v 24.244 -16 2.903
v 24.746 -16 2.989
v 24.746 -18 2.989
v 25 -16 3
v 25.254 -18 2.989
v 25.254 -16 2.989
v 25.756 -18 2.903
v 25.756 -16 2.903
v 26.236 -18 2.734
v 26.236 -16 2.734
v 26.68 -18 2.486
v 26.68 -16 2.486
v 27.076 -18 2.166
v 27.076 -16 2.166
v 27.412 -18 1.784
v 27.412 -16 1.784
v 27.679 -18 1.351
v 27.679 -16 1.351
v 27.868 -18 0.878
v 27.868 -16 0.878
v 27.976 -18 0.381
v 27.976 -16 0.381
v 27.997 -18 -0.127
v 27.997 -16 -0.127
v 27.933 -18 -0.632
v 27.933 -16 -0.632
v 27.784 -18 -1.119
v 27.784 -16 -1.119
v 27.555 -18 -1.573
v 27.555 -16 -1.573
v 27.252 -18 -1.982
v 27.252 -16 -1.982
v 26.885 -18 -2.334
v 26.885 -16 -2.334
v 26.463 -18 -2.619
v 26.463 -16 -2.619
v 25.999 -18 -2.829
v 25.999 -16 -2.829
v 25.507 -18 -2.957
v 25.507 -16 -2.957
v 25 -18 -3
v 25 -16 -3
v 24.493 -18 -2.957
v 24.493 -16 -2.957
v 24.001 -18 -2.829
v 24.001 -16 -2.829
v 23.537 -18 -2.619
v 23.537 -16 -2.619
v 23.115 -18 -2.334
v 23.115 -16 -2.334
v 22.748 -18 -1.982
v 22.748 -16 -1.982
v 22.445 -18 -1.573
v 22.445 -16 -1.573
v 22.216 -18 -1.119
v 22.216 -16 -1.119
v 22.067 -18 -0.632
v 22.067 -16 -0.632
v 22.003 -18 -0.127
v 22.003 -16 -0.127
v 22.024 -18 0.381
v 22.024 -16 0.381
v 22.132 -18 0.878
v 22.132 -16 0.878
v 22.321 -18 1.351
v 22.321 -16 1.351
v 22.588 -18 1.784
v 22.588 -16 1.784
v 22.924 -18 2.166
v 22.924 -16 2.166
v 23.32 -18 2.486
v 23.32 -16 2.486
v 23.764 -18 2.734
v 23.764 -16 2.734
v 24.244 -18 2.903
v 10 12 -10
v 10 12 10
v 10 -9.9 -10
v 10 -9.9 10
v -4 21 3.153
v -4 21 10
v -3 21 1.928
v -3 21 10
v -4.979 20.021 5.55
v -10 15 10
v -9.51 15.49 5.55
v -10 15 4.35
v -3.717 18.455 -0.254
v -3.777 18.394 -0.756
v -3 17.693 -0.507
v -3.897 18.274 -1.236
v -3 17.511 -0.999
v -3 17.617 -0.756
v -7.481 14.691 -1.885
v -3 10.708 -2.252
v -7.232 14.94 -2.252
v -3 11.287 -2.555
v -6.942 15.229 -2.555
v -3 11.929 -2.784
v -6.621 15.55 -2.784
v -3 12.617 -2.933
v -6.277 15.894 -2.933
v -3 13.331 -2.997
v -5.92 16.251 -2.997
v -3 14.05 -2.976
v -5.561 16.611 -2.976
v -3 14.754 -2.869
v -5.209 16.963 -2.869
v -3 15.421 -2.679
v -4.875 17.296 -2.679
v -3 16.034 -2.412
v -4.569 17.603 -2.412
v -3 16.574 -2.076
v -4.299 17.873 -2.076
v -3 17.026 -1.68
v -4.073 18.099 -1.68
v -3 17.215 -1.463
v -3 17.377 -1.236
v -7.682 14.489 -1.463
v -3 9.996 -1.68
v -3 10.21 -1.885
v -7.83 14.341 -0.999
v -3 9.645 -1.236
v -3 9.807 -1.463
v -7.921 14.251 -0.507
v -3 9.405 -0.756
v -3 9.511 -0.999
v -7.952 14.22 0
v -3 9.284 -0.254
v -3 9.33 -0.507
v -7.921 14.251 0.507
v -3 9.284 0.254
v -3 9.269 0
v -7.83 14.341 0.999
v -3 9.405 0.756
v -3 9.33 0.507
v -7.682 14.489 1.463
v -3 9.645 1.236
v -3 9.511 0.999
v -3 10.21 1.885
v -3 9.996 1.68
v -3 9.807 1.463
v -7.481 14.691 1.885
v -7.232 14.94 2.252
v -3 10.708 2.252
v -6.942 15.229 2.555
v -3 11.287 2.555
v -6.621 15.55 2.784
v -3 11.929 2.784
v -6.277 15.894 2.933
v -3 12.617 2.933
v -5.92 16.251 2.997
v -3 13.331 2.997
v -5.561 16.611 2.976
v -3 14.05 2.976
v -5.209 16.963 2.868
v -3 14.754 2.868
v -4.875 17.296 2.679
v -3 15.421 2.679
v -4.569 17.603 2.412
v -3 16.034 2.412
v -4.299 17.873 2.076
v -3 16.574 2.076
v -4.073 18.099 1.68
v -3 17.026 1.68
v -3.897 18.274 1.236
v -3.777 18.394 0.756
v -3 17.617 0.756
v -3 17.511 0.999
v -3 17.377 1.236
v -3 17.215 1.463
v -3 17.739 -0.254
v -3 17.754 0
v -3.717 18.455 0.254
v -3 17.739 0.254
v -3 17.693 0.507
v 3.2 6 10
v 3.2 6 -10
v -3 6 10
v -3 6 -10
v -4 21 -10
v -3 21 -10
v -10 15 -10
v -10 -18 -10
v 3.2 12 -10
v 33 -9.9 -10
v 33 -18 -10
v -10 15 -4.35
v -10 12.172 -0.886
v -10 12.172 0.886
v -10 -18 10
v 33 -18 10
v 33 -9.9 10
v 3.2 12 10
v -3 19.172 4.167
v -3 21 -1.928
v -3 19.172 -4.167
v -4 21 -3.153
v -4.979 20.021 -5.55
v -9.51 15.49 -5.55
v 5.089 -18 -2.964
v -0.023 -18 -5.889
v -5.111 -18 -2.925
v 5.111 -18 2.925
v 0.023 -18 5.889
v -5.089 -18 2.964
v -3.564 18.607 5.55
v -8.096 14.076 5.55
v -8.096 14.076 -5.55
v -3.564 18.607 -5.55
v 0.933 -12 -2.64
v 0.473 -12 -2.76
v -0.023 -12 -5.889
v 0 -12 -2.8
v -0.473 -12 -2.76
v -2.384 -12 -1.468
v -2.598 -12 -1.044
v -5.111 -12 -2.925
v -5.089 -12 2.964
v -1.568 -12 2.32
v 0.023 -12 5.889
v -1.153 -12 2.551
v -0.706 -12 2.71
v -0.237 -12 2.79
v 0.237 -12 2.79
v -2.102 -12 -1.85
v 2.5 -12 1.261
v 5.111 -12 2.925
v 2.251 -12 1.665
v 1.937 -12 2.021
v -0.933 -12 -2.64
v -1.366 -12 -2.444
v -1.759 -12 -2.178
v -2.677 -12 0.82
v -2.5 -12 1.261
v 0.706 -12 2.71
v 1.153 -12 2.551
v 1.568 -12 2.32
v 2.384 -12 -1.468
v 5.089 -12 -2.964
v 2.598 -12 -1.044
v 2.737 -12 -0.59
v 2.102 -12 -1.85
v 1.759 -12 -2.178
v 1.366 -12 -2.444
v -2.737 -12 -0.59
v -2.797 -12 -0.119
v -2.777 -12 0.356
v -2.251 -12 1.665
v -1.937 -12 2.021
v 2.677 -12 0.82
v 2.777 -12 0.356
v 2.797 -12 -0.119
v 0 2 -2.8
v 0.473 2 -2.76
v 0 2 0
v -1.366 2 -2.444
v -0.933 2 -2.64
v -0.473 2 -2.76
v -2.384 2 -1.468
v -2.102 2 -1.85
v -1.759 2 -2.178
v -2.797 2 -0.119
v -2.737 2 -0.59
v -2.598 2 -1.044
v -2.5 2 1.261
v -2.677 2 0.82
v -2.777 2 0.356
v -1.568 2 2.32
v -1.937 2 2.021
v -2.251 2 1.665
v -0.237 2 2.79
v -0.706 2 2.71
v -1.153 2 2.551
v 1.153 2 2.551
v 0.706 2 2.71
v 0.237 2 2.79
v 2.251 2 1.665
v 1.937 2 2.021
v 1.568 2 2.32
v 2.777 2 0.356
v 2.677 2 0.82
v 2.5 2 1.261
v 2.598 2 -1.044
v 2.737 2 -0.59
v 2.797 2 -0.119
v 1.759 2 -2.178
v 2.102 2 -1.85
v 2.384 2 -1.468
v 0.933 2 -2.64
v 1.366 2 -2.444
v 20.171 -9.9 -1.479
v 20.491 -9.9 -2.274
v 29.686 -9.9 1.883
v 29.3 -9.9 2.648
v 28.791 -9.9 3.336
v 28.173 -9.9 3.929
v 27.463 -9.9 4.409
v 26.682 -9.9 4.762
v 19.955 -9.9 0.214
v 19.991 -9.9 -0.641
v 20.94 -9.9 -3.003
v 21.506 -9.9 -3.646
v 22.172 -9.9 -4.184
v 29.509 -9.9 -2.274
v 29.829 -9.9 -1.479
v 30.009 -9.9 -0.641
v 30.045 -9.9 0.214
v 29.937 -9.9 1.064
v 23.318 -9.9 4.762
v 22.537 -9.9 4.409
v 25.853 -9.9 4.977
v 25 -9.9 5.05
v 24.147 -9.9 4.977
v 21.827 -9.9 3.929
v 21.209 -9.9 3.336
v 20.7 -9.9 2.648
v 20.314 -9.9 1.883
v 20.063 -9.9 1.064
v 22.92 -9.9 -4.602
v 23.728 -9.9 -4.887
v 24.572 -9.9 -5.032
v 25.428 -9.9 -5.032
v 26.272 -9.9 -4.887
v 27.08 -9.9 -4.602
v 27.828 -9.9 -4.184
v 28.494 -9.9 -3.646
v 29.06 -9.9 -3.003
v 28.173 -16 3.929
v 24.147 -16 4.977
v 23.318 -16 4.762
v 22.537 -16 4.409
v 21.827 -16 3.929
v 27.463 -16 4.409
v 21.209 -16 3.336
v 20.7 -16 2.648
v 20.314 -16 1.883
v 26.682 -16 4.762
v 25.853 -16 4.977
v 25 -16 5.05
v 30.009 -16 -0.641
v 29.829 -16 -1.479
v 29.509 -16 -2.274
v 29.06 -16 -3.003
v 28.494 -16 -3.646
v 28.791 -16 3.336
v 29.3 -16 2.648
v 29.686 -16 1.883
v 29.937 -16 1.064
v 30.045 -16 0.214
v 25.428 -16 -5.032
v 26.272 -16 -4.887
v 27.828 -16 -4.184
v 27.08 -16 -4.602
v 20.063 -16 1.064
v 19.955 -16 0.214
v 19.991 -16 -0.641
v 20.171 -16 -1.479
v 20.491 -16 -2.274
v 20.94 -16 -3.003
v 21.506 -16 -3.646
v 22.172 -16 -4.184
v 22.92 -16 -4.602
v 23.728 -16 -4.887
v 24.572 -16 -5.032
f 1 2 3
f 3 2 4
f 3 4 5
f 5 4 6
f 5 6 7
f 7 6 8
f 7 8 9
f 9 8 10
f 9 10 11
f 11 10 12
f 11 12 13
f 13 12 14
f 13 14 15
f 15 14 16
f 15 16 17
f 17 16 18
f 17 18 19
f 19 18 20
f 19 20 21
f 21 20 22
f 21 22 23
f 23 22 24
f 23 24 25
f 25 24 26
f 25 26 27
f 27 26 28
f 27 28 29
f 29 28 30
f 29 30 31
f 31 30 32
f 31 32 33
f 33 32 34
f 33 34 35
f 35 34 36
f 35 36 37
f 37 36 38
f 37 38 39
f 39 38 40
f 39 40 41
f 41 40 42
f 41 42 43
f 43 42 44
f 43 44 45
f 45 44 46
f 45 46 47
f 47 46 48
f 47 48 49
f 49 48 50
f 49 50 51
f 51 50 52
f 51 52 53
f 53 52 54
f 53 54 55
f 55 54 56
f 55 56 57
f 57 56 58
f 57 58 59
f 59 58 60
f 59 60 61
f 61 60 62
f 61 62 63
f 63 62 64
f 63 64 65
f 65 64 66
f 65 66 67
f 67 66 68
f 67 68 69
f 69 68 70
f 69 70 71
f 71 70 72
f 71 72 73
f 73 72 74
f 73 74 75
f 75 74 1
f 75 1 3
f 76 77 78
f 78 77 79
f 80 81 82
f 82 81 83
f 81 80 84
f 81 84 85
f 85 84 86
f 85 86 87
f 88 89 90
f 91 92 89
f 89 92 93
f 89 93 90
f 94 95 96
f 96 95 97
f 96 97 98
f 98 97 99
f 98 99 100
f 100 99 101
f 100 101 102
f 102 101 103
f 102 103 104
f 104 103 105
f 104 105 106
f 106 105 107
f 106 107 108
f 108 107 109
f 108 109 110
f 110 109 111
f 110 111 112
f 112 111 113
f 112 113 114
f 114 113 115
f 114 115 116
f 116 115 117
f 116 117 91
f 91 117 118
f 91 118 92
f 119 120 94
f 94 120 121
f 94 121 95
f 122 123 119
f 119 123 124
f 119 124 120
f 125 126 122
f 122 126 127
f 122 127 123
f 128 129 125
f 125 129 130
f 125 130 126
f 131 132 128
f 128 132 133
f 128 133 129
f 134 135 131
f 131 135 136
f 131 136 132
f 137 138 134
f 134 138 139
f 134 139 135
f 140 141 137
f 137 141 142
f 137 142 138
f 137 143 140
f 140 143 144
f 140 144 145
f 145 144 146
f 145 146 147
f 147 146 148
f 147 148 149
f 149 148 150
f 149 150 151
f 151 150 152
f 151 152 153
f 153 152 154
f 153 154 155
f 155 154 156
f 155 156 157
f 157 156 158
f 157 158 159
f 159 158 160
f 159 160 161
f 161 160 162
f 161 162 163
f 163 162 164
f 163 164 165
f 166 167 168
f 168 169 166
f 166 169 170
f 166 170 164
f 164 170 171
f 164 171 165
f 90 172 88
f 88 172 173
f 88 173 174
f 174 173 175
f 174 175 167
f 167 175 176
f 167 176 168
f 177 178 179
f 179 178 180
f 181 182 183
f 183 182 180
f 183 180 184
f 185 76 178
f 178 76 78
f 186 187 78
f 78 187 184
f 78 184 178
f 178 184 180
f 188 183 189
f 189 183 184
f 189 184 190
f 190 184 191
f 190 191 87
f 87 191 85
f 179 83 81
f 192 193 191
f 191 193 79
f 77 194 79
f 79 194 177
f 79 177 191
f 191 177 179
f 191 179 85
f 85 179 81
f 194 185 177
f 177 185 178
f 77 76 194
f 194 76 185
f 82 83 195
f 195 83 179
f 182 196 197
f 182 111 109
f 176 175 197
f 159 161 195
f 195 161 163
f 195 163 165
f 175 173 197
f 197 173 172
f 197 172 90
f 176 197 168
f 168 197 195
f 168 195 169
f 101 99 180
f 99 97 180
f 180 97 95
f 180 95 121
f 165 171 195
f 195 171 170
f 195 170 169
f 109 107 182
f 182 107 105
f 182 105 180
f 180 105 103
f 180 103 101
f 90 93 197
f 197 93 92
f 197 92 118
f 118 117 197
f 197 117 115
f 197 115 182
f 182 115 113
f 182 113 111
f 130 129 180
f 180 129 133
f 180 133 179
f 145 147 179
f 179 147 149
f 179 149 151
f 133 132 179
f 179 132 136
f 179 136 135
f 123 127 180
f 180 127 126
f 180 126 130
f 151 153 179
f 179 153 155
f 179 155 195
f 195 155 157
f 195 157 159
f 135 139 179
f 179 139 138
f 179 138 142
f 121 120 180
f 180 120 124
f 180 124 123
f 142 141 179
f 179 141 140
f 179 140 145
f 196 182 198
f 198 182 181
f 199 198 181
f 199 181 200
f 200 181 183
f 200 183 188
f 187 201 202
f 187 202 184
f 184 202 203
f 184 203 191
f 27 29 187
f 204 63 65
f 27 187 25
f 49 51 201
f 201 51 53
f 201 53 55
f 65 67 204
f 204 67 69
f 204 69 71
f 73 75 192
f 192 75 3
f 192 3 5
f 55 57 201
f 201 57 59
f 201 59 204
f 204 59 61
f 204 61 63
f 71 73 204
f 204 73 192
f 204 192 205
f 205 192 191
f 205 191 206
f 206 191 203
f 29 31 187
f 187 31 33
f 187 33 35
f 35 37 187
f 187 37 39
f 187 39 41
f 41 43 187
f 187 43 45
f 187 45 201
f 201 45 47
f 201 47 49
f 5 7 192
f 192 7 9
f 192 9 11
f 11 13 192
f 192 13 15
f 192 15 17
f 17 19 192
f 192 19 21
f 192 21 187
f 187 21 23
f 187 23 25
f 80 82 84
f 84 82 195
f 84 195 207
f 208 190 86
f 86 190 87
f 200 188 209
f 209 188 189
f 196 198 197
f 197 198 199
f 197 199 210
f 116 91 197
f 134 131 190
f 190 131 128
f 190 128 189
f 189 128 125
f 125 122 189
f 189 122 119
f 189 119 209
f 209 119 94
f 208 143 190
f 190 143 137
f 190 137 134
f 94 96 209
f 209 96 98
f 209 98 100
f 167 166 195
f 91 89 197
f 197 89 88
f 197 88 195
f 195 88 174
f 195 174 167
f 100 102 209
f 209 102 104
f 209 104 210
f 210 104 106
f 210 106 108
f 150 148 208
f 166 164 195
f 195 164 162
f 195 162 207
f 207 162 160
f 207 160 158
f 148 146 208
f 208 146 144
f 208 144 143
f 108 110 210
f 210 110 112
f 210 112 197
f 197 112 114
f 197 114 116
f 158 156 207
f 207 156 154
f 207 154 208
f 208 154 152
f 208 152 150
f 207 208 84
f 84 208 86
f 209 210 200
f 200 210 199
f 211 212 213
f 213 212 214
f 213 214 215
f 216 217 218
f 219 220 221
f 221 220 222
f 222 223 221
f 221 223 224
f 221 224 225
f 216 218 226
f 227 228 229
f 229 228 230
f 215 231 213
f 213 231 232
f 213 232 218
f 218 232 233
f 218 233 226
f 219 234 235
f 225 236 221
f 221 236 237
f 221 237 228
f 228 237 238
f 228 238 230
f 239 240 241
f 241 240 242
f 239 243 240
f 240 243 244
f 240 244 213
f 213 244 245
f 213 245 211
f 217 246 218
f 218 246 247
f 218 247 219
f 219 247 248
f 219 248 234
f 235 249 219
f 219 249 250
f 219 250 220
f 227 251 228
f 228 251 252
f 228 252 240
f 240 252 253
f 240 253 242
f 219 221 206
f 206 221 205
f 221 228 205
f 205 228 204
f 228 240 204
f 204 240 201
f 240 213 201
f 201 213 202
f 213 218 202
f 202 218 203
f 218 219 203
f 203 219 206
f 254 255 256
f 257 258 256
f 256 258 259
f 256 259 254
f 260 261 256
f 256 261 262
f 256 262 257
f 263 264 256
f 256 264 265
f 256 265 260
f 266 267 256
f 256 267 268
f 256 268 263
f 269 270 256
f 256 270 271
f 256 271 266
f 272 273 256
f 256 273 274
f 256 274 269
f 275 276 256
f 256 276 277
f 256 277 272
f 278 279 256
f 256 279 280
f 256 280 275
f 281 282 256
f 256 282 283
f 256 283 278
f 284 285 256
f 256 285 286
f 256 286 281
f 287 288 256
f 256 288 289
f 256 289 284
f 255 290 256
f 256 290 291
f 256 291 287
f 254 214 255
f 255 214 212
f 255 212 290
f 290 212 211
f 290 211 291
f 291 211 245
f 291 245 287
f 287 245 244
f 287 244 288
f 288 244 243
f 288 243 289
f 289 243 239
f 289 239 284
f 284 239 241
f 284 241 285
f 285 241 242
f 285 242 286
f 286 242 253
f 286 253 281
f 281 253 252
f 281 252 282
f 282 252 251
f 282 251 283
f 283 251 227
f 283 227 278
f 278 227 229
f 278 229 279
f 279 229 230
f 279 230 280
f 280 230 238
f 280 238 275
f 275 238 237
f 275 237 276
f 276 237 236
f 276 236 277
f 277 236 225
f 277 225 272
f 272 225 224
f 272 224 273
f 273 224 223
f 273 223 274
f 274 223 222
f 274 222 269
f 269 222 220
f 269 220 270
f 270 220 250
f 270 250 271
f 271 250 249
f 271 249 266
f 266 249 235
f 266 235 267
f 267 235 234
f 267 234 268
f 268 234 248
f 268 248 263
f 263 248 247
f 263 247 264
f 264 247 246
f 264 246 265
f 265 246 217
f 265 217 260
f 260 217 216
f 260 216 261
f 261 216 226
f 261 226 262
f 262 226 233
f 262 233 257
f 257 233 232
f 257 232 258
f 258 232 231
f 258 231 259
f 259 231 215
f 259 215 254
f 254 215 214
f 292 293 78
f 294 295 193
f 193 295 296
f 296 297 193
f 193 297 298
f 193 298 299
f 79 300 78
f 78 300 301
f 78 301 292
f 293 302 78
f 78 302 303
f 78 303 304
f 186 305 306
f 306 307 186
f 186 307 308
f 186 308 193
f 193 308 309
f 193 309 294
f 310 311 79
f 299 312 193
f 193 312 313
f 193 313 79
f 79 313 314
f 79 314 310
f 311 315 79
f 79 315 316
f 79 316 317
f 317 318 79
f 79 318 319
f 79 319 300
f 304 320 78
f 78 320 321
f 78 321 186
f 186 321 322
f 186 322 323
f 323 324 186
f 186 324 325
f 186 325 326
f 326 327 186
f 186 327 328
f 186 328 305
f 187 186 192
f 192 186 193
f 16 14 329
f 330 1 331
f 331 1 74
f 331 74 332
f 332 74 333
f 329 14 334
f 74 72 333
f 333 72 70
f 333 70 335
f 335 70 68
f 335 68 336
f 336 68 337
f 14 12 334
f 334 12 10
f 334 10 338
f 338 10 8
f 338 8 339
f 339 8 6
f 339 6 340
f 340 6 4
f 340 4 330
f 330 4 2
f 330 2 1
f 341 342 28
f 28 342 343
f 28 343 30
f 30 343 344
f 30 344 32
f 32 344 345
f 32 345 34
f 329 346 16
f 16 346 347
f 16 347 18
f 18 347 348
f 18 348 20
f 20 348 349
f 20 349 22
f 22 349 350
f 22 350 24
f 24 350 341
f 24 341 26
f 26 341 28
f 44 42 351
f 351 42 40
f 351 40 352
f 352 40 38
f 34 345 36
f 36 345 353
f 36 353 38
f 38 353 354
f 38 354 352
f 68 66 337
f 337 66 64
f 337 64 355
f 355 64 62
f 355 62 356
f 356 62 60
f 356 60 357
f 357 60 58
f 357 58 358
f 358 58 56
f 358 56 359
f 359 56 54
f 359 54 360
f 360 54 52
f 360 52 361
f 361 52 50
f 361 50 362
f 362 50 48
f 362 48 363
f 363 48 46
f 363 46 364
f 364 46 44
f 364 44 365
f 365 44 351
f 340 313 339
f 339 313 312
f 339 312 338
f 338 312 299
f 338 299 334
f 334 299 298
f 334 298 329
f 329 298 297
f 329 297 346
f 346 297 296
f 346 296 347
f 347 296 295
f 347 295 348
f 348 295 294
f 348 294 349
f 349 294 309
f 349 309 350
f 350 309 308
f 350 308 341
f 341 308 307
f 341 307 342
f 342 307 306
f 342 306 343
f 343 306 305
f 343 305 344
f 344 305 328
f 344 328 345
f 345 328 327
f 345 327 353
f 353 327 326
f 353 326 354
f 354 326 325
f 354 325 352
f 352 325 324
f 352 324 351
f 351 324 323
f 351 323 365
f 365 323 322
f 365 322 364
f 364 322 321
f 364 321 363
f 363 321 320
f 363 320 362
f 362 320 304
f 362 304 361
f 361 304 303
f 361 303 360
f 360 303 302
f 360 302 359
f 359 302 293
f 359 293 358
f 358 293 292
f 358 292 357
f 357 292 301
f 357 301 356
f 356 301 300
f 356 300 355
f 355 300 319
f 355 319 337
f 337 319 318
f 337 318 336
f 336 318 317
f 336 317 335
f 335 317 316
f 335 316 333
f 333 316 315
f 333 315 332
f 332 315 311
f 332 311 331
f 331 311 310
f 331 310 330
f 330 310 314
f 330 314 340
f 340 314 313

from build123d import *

# Parameters (mm, degrees)
SKETCH1_W           = 20
SKETCH1_H           = 20
BOSS_EXTRUDE1_DEPTH = 6
SKETCH2_W           = 6.8
SKETCH2_H           = 20
BOSS_EXTRUDE2_DEPTH = 6
SKETCH3_W           = 7
SKETCH3_H           = 20
BOSS_EXTRUDE3_DEPTH = 15
CHAMFER1_SIZE       = 6
SKETCH4_R           = 3
CUT_EXTRUDE1_DEPTH  = 10
SKETCH5_W           = 20
SKETCH5_H           = 20
BOSS_EXTRUDE4_DEPTH = 18
CUT_EXTRUDE2_DEPTH  = 2
SKETCH7_R           = 2.8
CUT_EXTRUDE3_DEPTH  = 20
CUT_EXTRUDE4_DEPTH  = 6
SKETCH9_W           = 20
SKETCH9_H           = 8.1
BOSS_EXTRUDE5_DEPTH = 23
CUT_EXTRUDE5_REACH  = 54.058
SKETCH10_R          = 3
SKETCH11_R          = 5.05
CUT_EXTRUDE6_DEPTH  = 6.1


with BuildPart() as part:
    # Sketch1 → Boss-Extrude1 (new body)
    with BuildSketch(Plane(origin=(0, 0, 0), x_dir=(1, 0, 0), z_dir=(0, 1, 0))):
        Rectangle(SKETCH1_W, SKETCH1_H)
    extrude(amount=BOSS_EXTRUDE1_DEPTH)

    # Sketch2 → Boss-Extrude2 (add)
    with BuildSketch(Plane(origin=(0, 6, 0), x_dir=(1, 0, 0), z_dir=(0, 1, 0))):
        with Locations((6.6, 0)):
            Rectangle(SKETCH2_W, SKETCH2_H)
    extrude(amount=BOSS_EXTRUDE2_DEPTH)

    # Sketch3 → Boss-Extrude3 (add)
    with BuildSketch(Plane(origin=(0, 6, 0), x_dir=(1, 0, 0), z_dir=(0, 1, 0))):
        with Locations((-6.5, 0)):
            Rectangle(SKETCH3_W, SKETCH3_H)
    extrude(amount=BOSS_EXTRUDE3_DEPTH)

    # Chamfer1
    chamfer1_edges = [part.edges().sort_by_distance(p)[0] for p in [
        (-10, 21, 0),
    ]]
    chamfer(chamfer1_edges, length=CHAMFER1_SIZE)

    # Sketch4 → Cut-Extrude1 (cut)
    with BuildSketch(Plane(origin=(-12.5, 12.5, 0), x_dir=(0, 0, 1), z_dir=(-0.7071067811865489, 0.7071067811865462, 0))):
        with Locations(Location((0, 7.432512212, 0), (0, 0, 270))):
            Circle(SKETCH4_R)
    extrude(amount=-CUT_EXTRUDE1_DEPTH, mode=Mode.SUBTRACT)

    # Sketch5 → Boss-Extrude4 (add)
    with BuildSketch(Plane.XZ):
        Rectangle(SKETCH5_W, SKETCH5_H)
    extrude(amount=BOSS_EXTRUDE4_DEPTH)

    # Sketch6 → Cut-Extrude2 (cut)
    with BuildSketch(Plane(origin=(-12.5, 12.5, 0), x_dir=(0, 0, 1), z_dir=(-0.7071067811865489, 0.7071067811865462, 0))):
        Polygon((0, 13.8411002), (-5.55, 10.636806206), (-5.55, 4.228218218), (0, 1.023924224), (5.55, 4.228218218), (5.55, 10.636806206), align=None)
    extrude(amount=-CUT_EXTRUDE2_DEPTH, mode=Mode.SUBTRACT)

    # Sketch7 → Cut-Extrude3 (cut)
    with BuildSketch(Plane(origin=(0, -18, 0), x_dir=(-1, 0, 0), z_dir=(0, -1, 0))):
        with Locations(Location((0, 0, 0), (0, 0, 90))):
            Circle(SKETCH7_R)
    extrude(amount=-CUT_EXTRUDE3_DEPTH, mode=Mode.SUBTRACT)

    # Sketch8 → Cut-Extrude4 (cut)
    with BuildSketch(Plane(origin=(0, -18, 0), x_dir=(-1, 0, 0), z_dir=(0, -1, 0))):
        Polygon((5.088506171, -2.964305137), (5.111416639, 2.924623043), (0.022910468, 5.88892818), (-5.088506171, 2.964305137), (-5.111416639, -2.924623043), (-0.022910468, -5.88892818), align=None)
    extrude(amount=-CUT_EXTRUDE4_DEPTH, mode=Mode.SUBTRACT)

    # Sketch9 → Boss-Extrude5 (add)
    with BuildSketch(Plane(origin=(10, 0, 0), x_dir=(0, 0, -1), z_dir=(1, 0, 0))):
        with Locations((0, -13.95)):
            Rectangle(SKETCH9_W, SKETCH9_H)
    extrude(amount=BOSS_EXTRUDE5_DEPTH)

    # Sketch10 → Cut-Extrude5 (cut, up to next)
    with BuildSketch(Plane.XZ.offset(18), mode=Mode.PRIVATE) as cut_extrude5_sk1:
        with Locations(Location((25, 0, 0), (0, 0, 270))):
            Circle(SKETCH10_R)
    cut_extrude5_tool1 = extrude(cut_extrude5_sk1.sketch, amount=-CUT_EXTRUDE5_REACH, mode=Mode.PRIVATE) & part.part
    add(cut_extrude5_tool1.solids().sort_by_distance((25, -18, 0))[0], mode=Mode.SUBTRACT)

    # Sketch11 → Cut-Extrude6 (cut)
    with BuildSketch(Plane(origin=(0, -9.9, 0), x_dir=(1, 0, 0), z_dir=(0, 1, 0))):
        with Locations(Location((25, 0, 0), (0, 0, 270))):
            Circle(SKETCH11_R)
    extrude(amount=-CUT_EXTRUDE6_DEPTH, mode=Mode.SUBTRACT)


solid = part.part
